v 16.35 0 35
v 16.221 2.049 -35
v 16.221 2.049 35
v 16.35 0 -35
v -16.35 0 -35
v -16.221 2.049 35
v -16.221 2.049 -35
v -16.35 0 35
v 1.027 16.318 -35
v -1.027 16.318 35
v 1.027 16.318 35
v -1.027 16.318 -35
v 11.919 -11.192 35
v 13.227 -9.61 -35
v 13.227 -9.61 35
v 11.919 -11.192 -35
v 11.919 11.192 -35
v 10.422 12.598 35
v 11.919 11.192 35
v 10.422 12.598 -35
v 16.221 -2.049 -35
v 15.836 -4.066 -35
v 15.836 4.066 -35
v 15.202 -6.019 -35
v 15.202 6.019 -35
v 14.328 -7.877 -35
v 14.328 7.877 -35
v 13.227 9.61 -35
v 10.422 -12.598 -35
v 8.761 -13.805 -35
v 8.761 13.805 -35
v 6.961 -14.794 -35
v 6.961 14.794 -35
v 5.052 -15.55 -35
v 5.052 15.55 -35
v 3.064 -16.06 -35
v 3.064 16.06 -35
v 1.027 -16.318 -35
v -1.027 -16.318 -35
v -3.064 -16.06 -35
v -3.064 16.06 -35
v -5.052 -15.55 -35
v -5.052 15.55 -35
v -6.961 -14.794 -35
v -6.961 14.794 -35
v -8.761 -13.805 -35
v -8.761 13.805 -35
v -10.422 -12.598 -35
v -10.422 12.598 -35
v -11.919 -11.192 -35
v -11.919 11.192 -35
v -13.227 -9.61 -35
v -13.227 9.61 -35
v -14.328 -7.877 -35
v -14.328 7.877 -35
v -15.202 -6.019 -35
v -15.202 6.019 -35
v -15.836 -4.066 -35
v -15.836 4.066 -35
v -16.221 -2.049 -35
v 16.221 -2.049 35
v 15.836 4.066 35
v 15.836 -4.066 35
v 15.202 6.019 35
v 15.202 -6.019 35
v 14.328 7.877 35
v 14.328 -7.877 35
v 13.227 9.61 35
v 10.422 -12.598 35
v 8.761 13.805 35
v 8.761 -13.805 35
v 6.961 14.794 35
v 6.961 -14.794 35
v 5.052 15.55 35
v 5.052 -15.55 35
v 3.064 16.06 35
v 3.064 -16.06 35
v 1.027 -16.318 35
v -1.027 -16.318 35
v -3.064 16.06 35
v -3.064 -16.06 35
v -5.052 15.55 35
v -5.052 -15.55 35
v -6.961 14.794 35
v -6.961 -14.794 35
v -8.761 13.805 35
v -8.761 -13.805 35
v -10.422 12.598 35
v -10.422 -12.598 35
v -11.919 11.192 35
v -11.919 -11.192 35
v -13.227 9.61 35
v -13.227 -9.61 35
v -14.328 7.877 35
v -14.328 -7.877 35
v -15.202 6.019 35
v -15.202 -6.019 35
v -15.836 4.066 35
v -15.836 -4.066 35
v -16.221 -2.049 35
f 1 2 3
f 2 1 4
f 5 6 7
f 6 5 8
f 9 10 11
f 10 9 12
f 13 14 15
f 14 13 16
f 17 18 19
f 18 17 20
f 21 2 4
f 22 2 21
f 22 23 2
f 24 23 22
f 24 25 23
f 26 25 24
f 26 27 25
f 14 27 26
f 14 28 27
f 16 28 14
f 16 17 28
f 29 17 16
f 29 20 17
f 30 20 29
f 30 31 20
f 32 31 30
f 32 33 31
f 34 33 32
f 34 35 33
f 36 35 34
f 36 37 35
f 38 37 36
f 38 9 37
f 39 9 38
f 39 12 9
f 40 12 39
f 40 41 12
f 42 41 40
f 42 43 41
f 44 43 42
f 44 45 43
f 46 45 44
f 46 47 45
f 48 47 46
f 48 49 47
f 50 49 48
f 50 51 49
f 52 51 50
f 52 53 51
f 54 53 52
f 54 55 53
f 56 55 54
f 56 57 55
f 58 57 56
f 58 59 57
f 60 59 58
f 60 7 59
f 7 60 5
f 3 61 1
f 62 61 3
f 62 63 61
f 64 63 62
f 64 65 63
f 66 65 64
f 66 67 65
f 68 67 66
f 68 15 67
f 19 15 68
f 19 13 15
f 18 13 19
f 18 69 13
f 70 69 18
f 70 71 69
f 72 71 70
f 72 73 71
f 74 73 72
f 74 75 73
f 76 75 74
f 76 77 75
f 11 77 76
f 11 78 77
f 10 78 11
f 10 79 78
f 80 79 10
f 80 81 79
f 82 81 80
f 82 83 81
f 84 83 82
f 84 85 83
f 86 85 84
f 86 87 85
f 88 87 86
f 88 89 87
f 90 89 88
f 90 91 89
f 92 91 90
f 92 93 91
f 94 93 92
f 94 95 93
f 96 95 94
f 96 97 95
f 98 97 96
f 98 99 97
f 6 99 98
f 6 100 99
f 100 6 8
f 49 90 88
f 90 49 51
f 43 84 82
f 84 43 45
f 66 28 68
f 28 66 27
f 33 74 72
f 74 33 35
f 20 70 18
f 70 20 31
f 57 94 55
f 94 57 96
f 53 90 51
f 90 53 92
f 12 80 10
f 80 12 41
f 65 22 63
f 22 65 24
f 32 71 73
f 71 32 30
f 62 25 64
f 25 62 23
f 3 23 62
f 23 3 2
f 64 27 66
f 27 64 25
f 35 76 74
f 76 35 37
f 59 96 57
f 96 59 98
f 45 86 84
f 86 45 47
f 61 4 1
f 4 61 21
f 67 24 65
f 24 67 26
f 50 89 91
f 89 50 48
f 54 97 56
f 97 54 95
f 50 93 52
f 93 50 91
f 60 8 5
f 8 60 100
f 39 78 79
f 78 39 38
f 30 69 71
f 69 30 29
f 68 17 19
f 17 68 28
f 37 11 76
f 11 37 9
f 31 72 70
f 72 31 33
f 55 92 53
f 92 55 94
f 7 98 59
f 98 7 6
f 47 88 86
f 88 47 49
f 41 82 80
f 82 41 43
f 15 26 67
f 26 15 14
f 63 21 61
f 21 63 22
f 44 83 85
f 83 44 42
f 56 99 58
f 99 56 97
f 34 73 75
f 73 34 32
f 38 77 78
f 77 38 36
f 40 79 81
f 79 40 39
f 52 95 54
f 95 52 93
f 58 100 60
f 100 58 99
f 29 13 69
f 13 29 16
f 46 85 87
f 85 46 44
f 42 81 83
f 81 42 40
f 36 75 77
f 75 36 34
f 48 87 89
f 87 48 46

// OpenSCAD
$fn = 50;


difference() {
	union() {
		translate(v = [0, 0, -35.0000000000]) {
			cylinder(h = 70, r = 16.3500000000);
		}
	}
	union() {
		translate(v = [0, 0, -100.0000000000]) {
			cylinder(h = 200, r = 0);
		}
	}
}
